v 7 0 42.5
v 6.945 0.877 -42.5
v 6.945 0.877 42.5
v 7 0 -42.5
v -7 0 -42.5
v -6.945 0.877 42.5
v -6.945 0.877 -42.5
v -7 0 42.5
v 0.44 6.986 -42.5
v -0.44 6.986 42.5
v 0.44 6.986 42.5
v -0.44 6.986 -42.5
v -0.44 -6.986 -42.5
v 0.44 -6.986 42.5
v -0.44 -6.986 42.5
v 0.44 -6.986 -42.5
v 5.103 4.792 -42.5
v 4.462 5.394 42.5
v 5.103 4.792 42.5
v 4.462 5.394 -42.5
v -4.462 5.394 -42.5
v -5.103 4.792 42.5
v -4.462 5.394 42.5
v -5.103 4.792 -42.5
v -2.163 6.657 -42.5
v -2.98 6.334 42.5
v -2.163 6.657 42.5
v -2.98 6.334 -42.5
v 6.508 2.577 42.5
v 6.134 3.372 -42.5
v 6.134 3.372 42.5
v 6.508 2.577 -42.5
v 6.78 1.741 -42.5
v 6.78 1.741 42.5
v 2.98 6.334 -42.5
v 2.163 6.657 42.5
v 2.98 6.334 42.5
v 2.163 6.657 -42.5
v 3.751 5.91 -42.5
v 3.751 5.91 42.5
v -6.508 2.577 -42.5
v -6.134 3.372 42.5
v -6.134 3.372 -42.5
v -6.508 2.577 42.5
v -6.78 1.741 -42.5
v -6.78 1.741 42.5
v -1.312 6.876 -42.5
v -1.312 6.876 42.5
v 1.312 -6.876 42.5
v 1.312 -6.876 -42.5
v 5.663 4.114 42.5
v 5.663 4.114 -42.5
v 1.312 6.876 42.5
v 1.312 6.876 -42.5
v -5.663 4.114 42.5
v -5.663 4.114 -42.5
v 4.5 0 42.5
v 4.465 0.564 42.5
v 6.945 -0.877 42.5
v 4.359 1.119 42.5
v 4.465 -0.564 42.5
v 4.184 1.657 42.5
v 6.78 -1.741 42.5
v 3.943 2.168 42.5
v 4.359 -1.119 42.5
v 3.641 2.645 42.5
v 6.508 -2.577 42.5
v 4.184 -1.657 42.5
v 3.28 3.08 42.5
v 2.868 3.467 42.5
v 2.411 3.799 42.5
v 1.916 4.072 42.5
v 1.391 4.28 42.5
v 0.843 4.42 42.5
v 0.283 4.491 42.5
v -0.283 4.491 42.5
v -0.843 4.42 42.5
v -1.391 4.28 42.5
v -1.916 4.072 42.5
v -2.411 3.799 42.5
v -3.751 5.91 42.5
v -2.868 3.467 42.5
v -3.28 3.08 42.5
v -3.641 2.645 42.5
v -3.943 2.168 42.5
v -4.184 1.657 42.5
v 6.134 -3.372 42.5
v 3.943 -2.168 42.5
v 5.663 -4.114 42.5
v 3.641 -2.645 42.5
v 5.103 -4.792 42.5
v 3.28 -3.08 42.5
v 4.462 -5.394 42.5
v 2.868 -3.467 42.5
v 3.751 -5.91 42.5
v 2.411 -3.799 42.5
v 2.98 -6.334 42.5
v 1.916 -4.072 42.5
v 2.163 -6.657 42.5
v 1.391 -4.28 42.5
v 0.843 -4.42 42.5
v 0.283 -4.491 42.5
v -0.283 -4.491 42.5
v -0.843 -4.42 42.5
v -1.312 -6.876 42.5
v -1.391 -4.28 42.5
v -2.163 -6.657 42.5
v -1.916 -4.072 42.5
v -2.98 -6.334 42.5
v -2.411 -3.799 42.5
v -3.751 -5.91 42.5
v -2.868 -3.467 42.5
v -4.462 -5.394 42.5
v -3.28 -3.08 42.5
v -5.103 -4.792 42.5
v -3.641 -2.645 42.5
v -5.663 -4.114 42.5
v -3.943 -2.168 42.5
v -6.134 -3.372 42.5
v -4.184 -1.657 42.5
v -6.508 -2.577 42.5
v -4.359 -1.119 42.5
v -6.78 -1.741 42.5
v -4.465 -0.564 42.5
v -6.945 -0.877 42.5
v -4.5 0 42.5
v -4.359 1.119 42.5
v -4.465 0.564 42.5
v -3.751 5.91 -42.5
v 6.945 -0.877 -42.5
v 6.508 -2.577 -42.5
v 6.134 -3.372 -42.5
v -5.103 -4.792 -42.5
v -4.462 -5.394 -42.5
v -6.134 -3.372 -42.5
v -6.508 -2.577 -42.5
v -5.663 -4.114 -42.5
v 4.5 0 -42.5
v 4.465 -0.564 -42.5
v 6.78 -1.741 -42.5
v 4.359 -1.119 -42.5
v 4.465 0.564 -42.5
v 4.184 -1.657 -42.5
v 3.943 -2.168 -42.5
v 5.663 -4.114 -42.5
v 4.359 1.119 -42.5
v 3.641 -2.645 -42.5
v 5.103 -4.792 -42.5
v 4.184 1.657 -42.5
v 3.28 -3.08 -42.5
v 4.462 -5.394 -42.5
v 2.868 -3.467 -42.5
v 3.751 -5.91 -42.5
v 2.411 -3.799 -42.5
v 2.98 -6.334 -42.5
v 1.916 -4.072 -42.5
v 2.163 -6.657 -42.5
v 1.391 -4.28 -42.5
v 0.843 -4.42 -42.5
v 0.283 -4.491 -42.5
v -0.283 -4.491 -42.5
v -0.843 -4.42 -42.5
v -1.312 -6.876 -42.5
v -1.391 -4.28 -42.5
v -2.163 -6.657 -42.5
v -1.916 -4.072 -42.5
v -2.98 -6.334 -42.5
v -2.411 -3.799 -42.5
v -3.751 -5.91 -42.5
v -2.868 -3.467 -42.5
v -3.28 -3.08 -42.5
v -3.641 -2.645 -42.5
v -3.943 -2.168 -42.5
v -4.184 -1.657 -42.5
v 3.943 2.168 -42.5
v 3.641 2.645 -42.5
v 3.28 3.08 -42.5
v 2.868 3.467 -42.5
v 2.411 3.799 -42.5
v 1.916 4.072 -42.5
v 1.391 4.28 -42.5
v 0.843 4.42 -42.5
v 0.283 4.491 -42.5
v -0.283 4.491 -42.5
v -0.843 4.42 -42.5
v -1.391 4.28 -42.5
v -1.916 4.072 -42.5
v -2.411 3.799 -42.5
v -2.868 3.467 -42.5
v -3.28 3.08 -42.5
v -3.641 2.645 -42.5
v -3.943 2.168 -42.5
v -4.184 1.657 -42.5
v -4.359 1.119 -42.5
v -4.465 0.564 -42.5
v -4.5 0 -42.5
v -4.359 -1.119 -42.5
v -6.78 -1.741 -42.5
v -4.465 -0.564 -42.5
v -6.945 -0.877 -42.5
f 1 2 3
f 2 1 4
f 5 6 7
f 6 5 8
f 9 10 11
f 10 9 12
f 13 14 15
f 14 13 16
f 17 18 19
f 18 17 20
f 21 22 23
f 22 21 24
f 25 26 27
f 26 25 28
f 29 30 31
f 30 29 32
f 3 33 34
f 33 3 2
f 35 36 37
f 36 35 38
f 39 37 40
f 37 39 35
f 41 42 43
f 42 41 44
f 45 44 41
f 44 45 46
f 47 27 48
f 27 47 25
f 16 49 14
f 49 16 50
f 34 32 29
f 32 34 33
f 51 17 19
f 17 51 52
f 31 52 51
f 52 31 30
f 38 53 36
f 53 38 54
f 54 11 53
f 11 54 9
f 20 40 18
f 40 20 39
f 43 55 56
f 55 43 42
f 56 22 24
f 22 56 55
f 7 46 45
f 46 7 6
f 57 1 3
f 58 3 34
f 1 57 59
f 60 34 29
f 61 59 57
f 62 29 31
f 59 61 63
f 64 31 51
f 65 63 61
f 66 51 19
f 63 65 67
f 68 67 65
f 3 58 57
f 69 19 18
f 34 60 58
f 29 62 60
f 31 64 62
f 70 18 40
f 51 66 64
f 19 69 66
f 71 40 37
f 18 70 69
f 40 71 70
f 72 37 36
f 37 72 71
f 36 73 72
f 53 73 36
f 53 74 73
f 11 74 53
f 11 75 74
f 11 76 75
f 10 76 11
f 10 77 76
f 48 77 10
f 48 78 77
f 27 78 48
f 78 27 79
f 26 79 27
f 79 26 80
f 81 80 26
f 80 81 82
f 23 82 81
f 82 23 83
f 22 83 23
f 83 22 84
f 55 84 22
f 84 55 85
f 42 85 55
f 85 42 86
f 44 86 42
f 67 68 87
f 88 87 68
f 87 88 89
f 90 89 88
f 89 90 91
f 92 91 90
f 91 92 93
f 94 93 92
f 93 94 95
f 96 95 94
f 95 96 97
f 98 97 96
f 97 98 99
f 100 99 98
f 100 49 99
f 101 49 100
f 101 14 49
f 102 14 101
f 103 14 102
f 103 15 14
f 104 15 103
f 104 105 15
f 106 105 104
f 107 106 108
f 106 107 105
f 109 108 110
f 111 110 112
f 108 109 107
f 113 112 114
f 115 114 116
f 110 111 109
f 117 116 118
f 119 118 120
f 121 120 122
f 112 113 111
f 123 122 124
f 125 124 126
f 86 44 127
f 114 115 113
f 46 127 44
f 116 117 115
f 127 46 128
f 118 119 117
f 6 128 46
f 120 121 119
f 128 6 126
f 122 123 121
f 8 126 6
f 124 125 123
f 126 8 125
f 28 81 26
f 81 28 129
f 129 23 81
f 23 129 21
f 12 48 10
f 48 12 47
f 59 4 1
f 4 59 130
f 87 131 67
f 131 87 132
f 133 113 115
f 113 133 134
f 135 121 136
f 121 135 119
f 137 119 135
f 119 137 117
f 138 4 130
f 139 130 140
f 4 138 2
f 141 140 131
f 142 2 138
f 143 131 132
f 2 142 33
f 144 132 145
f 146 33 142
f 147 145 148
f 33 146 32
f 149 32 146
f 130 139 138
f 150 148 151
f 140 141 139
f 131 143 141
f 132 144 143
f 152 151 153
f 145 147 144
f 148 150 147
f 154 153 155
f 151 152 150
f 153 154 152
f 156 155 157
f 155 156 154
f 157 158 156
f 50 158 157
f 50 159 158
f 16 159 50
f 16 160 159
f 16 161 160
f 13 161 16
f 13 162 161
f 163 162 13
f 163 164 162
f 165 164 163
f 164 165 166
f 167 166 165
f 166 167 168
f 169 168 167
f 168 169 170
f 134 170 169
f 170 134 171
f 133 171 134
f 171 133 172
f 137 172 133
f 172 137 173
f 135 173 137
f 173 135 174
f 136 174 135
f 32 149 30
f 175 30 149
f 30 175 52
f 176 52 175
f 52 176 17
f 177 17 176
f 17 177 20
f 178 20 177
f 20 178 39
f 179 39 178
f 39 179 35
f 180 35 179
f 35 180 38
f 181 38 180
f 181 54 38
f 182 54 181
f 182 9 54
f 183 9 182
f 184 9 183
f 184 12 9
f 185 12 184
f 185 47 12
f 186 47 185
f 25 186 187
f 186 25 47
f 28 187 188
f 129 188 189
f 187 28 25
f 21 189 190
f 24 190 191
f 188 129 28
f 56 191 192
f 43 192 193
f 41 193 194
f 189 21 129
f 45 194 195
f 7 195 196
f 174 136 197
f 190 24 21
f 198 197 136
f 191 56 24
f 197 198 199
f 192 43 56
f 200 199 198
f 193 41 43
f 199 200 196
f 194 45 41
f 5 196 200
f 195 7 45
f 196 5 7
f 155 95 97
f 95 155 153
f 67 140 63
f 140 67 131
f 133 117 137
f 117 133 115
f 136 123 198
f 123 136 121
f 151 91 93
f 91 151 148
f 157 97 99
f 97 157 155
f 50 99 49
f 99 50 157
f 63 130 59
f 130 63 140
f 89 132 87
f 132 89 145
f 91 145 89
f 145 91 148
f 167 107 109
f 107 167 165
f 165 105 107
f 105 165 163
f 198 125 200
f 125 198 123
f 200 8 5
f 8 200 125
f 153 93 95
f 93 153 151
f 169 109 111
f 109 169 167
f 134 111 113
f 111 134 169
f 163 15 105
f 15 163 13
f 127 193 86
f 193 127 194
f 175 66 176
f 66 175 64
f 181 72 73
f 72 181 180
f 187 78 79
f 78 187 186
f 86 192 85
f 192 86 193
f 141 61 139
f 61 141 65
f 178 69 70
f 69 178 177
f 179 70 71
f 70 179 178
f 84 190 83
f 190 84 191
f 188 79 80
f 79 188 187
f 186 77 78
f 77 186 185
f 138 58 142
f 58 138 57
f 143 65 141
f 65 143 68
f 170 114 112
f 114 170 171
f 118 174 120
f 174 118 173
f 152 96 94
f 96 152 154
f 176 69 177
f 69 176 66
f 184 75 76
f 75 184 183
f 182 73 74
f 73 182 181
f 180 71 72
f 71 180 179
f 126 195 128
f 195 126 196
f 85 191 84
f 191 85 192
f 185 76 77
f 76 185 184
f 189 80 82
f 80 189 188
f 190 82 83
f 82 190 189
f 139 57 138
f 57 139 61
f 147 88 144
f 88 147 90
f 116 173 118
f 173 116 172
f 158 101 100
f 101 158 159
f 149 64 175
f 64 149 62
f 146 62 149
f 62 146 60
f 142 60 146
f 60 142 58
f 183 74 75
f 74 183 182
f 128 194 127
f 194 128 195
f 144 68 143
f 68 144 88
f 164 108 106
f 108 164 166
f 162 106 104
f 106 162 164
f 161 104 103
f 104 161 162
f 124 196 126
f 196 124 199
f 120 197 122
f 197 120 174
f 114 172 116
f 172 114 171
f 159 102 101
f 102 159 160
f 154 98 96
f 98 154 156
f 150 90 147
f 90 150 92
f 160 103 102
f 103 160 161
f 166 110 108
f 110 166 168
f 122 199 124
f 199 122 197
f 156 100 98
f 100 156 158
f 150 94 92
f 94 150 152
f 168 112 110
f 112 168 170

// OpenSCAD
$fn = 50;


difference() {
	union() {
		translate(v = [0, 0, -42.5000000000]) {
			cylinder(h = 85, r = 7.0000000000);
		}
	}
	union() {
		translate(v = [0, 0, -100.0000000000]) {
			cylinder(h = 200, r = 4.5000000000);
		}
	}
}
